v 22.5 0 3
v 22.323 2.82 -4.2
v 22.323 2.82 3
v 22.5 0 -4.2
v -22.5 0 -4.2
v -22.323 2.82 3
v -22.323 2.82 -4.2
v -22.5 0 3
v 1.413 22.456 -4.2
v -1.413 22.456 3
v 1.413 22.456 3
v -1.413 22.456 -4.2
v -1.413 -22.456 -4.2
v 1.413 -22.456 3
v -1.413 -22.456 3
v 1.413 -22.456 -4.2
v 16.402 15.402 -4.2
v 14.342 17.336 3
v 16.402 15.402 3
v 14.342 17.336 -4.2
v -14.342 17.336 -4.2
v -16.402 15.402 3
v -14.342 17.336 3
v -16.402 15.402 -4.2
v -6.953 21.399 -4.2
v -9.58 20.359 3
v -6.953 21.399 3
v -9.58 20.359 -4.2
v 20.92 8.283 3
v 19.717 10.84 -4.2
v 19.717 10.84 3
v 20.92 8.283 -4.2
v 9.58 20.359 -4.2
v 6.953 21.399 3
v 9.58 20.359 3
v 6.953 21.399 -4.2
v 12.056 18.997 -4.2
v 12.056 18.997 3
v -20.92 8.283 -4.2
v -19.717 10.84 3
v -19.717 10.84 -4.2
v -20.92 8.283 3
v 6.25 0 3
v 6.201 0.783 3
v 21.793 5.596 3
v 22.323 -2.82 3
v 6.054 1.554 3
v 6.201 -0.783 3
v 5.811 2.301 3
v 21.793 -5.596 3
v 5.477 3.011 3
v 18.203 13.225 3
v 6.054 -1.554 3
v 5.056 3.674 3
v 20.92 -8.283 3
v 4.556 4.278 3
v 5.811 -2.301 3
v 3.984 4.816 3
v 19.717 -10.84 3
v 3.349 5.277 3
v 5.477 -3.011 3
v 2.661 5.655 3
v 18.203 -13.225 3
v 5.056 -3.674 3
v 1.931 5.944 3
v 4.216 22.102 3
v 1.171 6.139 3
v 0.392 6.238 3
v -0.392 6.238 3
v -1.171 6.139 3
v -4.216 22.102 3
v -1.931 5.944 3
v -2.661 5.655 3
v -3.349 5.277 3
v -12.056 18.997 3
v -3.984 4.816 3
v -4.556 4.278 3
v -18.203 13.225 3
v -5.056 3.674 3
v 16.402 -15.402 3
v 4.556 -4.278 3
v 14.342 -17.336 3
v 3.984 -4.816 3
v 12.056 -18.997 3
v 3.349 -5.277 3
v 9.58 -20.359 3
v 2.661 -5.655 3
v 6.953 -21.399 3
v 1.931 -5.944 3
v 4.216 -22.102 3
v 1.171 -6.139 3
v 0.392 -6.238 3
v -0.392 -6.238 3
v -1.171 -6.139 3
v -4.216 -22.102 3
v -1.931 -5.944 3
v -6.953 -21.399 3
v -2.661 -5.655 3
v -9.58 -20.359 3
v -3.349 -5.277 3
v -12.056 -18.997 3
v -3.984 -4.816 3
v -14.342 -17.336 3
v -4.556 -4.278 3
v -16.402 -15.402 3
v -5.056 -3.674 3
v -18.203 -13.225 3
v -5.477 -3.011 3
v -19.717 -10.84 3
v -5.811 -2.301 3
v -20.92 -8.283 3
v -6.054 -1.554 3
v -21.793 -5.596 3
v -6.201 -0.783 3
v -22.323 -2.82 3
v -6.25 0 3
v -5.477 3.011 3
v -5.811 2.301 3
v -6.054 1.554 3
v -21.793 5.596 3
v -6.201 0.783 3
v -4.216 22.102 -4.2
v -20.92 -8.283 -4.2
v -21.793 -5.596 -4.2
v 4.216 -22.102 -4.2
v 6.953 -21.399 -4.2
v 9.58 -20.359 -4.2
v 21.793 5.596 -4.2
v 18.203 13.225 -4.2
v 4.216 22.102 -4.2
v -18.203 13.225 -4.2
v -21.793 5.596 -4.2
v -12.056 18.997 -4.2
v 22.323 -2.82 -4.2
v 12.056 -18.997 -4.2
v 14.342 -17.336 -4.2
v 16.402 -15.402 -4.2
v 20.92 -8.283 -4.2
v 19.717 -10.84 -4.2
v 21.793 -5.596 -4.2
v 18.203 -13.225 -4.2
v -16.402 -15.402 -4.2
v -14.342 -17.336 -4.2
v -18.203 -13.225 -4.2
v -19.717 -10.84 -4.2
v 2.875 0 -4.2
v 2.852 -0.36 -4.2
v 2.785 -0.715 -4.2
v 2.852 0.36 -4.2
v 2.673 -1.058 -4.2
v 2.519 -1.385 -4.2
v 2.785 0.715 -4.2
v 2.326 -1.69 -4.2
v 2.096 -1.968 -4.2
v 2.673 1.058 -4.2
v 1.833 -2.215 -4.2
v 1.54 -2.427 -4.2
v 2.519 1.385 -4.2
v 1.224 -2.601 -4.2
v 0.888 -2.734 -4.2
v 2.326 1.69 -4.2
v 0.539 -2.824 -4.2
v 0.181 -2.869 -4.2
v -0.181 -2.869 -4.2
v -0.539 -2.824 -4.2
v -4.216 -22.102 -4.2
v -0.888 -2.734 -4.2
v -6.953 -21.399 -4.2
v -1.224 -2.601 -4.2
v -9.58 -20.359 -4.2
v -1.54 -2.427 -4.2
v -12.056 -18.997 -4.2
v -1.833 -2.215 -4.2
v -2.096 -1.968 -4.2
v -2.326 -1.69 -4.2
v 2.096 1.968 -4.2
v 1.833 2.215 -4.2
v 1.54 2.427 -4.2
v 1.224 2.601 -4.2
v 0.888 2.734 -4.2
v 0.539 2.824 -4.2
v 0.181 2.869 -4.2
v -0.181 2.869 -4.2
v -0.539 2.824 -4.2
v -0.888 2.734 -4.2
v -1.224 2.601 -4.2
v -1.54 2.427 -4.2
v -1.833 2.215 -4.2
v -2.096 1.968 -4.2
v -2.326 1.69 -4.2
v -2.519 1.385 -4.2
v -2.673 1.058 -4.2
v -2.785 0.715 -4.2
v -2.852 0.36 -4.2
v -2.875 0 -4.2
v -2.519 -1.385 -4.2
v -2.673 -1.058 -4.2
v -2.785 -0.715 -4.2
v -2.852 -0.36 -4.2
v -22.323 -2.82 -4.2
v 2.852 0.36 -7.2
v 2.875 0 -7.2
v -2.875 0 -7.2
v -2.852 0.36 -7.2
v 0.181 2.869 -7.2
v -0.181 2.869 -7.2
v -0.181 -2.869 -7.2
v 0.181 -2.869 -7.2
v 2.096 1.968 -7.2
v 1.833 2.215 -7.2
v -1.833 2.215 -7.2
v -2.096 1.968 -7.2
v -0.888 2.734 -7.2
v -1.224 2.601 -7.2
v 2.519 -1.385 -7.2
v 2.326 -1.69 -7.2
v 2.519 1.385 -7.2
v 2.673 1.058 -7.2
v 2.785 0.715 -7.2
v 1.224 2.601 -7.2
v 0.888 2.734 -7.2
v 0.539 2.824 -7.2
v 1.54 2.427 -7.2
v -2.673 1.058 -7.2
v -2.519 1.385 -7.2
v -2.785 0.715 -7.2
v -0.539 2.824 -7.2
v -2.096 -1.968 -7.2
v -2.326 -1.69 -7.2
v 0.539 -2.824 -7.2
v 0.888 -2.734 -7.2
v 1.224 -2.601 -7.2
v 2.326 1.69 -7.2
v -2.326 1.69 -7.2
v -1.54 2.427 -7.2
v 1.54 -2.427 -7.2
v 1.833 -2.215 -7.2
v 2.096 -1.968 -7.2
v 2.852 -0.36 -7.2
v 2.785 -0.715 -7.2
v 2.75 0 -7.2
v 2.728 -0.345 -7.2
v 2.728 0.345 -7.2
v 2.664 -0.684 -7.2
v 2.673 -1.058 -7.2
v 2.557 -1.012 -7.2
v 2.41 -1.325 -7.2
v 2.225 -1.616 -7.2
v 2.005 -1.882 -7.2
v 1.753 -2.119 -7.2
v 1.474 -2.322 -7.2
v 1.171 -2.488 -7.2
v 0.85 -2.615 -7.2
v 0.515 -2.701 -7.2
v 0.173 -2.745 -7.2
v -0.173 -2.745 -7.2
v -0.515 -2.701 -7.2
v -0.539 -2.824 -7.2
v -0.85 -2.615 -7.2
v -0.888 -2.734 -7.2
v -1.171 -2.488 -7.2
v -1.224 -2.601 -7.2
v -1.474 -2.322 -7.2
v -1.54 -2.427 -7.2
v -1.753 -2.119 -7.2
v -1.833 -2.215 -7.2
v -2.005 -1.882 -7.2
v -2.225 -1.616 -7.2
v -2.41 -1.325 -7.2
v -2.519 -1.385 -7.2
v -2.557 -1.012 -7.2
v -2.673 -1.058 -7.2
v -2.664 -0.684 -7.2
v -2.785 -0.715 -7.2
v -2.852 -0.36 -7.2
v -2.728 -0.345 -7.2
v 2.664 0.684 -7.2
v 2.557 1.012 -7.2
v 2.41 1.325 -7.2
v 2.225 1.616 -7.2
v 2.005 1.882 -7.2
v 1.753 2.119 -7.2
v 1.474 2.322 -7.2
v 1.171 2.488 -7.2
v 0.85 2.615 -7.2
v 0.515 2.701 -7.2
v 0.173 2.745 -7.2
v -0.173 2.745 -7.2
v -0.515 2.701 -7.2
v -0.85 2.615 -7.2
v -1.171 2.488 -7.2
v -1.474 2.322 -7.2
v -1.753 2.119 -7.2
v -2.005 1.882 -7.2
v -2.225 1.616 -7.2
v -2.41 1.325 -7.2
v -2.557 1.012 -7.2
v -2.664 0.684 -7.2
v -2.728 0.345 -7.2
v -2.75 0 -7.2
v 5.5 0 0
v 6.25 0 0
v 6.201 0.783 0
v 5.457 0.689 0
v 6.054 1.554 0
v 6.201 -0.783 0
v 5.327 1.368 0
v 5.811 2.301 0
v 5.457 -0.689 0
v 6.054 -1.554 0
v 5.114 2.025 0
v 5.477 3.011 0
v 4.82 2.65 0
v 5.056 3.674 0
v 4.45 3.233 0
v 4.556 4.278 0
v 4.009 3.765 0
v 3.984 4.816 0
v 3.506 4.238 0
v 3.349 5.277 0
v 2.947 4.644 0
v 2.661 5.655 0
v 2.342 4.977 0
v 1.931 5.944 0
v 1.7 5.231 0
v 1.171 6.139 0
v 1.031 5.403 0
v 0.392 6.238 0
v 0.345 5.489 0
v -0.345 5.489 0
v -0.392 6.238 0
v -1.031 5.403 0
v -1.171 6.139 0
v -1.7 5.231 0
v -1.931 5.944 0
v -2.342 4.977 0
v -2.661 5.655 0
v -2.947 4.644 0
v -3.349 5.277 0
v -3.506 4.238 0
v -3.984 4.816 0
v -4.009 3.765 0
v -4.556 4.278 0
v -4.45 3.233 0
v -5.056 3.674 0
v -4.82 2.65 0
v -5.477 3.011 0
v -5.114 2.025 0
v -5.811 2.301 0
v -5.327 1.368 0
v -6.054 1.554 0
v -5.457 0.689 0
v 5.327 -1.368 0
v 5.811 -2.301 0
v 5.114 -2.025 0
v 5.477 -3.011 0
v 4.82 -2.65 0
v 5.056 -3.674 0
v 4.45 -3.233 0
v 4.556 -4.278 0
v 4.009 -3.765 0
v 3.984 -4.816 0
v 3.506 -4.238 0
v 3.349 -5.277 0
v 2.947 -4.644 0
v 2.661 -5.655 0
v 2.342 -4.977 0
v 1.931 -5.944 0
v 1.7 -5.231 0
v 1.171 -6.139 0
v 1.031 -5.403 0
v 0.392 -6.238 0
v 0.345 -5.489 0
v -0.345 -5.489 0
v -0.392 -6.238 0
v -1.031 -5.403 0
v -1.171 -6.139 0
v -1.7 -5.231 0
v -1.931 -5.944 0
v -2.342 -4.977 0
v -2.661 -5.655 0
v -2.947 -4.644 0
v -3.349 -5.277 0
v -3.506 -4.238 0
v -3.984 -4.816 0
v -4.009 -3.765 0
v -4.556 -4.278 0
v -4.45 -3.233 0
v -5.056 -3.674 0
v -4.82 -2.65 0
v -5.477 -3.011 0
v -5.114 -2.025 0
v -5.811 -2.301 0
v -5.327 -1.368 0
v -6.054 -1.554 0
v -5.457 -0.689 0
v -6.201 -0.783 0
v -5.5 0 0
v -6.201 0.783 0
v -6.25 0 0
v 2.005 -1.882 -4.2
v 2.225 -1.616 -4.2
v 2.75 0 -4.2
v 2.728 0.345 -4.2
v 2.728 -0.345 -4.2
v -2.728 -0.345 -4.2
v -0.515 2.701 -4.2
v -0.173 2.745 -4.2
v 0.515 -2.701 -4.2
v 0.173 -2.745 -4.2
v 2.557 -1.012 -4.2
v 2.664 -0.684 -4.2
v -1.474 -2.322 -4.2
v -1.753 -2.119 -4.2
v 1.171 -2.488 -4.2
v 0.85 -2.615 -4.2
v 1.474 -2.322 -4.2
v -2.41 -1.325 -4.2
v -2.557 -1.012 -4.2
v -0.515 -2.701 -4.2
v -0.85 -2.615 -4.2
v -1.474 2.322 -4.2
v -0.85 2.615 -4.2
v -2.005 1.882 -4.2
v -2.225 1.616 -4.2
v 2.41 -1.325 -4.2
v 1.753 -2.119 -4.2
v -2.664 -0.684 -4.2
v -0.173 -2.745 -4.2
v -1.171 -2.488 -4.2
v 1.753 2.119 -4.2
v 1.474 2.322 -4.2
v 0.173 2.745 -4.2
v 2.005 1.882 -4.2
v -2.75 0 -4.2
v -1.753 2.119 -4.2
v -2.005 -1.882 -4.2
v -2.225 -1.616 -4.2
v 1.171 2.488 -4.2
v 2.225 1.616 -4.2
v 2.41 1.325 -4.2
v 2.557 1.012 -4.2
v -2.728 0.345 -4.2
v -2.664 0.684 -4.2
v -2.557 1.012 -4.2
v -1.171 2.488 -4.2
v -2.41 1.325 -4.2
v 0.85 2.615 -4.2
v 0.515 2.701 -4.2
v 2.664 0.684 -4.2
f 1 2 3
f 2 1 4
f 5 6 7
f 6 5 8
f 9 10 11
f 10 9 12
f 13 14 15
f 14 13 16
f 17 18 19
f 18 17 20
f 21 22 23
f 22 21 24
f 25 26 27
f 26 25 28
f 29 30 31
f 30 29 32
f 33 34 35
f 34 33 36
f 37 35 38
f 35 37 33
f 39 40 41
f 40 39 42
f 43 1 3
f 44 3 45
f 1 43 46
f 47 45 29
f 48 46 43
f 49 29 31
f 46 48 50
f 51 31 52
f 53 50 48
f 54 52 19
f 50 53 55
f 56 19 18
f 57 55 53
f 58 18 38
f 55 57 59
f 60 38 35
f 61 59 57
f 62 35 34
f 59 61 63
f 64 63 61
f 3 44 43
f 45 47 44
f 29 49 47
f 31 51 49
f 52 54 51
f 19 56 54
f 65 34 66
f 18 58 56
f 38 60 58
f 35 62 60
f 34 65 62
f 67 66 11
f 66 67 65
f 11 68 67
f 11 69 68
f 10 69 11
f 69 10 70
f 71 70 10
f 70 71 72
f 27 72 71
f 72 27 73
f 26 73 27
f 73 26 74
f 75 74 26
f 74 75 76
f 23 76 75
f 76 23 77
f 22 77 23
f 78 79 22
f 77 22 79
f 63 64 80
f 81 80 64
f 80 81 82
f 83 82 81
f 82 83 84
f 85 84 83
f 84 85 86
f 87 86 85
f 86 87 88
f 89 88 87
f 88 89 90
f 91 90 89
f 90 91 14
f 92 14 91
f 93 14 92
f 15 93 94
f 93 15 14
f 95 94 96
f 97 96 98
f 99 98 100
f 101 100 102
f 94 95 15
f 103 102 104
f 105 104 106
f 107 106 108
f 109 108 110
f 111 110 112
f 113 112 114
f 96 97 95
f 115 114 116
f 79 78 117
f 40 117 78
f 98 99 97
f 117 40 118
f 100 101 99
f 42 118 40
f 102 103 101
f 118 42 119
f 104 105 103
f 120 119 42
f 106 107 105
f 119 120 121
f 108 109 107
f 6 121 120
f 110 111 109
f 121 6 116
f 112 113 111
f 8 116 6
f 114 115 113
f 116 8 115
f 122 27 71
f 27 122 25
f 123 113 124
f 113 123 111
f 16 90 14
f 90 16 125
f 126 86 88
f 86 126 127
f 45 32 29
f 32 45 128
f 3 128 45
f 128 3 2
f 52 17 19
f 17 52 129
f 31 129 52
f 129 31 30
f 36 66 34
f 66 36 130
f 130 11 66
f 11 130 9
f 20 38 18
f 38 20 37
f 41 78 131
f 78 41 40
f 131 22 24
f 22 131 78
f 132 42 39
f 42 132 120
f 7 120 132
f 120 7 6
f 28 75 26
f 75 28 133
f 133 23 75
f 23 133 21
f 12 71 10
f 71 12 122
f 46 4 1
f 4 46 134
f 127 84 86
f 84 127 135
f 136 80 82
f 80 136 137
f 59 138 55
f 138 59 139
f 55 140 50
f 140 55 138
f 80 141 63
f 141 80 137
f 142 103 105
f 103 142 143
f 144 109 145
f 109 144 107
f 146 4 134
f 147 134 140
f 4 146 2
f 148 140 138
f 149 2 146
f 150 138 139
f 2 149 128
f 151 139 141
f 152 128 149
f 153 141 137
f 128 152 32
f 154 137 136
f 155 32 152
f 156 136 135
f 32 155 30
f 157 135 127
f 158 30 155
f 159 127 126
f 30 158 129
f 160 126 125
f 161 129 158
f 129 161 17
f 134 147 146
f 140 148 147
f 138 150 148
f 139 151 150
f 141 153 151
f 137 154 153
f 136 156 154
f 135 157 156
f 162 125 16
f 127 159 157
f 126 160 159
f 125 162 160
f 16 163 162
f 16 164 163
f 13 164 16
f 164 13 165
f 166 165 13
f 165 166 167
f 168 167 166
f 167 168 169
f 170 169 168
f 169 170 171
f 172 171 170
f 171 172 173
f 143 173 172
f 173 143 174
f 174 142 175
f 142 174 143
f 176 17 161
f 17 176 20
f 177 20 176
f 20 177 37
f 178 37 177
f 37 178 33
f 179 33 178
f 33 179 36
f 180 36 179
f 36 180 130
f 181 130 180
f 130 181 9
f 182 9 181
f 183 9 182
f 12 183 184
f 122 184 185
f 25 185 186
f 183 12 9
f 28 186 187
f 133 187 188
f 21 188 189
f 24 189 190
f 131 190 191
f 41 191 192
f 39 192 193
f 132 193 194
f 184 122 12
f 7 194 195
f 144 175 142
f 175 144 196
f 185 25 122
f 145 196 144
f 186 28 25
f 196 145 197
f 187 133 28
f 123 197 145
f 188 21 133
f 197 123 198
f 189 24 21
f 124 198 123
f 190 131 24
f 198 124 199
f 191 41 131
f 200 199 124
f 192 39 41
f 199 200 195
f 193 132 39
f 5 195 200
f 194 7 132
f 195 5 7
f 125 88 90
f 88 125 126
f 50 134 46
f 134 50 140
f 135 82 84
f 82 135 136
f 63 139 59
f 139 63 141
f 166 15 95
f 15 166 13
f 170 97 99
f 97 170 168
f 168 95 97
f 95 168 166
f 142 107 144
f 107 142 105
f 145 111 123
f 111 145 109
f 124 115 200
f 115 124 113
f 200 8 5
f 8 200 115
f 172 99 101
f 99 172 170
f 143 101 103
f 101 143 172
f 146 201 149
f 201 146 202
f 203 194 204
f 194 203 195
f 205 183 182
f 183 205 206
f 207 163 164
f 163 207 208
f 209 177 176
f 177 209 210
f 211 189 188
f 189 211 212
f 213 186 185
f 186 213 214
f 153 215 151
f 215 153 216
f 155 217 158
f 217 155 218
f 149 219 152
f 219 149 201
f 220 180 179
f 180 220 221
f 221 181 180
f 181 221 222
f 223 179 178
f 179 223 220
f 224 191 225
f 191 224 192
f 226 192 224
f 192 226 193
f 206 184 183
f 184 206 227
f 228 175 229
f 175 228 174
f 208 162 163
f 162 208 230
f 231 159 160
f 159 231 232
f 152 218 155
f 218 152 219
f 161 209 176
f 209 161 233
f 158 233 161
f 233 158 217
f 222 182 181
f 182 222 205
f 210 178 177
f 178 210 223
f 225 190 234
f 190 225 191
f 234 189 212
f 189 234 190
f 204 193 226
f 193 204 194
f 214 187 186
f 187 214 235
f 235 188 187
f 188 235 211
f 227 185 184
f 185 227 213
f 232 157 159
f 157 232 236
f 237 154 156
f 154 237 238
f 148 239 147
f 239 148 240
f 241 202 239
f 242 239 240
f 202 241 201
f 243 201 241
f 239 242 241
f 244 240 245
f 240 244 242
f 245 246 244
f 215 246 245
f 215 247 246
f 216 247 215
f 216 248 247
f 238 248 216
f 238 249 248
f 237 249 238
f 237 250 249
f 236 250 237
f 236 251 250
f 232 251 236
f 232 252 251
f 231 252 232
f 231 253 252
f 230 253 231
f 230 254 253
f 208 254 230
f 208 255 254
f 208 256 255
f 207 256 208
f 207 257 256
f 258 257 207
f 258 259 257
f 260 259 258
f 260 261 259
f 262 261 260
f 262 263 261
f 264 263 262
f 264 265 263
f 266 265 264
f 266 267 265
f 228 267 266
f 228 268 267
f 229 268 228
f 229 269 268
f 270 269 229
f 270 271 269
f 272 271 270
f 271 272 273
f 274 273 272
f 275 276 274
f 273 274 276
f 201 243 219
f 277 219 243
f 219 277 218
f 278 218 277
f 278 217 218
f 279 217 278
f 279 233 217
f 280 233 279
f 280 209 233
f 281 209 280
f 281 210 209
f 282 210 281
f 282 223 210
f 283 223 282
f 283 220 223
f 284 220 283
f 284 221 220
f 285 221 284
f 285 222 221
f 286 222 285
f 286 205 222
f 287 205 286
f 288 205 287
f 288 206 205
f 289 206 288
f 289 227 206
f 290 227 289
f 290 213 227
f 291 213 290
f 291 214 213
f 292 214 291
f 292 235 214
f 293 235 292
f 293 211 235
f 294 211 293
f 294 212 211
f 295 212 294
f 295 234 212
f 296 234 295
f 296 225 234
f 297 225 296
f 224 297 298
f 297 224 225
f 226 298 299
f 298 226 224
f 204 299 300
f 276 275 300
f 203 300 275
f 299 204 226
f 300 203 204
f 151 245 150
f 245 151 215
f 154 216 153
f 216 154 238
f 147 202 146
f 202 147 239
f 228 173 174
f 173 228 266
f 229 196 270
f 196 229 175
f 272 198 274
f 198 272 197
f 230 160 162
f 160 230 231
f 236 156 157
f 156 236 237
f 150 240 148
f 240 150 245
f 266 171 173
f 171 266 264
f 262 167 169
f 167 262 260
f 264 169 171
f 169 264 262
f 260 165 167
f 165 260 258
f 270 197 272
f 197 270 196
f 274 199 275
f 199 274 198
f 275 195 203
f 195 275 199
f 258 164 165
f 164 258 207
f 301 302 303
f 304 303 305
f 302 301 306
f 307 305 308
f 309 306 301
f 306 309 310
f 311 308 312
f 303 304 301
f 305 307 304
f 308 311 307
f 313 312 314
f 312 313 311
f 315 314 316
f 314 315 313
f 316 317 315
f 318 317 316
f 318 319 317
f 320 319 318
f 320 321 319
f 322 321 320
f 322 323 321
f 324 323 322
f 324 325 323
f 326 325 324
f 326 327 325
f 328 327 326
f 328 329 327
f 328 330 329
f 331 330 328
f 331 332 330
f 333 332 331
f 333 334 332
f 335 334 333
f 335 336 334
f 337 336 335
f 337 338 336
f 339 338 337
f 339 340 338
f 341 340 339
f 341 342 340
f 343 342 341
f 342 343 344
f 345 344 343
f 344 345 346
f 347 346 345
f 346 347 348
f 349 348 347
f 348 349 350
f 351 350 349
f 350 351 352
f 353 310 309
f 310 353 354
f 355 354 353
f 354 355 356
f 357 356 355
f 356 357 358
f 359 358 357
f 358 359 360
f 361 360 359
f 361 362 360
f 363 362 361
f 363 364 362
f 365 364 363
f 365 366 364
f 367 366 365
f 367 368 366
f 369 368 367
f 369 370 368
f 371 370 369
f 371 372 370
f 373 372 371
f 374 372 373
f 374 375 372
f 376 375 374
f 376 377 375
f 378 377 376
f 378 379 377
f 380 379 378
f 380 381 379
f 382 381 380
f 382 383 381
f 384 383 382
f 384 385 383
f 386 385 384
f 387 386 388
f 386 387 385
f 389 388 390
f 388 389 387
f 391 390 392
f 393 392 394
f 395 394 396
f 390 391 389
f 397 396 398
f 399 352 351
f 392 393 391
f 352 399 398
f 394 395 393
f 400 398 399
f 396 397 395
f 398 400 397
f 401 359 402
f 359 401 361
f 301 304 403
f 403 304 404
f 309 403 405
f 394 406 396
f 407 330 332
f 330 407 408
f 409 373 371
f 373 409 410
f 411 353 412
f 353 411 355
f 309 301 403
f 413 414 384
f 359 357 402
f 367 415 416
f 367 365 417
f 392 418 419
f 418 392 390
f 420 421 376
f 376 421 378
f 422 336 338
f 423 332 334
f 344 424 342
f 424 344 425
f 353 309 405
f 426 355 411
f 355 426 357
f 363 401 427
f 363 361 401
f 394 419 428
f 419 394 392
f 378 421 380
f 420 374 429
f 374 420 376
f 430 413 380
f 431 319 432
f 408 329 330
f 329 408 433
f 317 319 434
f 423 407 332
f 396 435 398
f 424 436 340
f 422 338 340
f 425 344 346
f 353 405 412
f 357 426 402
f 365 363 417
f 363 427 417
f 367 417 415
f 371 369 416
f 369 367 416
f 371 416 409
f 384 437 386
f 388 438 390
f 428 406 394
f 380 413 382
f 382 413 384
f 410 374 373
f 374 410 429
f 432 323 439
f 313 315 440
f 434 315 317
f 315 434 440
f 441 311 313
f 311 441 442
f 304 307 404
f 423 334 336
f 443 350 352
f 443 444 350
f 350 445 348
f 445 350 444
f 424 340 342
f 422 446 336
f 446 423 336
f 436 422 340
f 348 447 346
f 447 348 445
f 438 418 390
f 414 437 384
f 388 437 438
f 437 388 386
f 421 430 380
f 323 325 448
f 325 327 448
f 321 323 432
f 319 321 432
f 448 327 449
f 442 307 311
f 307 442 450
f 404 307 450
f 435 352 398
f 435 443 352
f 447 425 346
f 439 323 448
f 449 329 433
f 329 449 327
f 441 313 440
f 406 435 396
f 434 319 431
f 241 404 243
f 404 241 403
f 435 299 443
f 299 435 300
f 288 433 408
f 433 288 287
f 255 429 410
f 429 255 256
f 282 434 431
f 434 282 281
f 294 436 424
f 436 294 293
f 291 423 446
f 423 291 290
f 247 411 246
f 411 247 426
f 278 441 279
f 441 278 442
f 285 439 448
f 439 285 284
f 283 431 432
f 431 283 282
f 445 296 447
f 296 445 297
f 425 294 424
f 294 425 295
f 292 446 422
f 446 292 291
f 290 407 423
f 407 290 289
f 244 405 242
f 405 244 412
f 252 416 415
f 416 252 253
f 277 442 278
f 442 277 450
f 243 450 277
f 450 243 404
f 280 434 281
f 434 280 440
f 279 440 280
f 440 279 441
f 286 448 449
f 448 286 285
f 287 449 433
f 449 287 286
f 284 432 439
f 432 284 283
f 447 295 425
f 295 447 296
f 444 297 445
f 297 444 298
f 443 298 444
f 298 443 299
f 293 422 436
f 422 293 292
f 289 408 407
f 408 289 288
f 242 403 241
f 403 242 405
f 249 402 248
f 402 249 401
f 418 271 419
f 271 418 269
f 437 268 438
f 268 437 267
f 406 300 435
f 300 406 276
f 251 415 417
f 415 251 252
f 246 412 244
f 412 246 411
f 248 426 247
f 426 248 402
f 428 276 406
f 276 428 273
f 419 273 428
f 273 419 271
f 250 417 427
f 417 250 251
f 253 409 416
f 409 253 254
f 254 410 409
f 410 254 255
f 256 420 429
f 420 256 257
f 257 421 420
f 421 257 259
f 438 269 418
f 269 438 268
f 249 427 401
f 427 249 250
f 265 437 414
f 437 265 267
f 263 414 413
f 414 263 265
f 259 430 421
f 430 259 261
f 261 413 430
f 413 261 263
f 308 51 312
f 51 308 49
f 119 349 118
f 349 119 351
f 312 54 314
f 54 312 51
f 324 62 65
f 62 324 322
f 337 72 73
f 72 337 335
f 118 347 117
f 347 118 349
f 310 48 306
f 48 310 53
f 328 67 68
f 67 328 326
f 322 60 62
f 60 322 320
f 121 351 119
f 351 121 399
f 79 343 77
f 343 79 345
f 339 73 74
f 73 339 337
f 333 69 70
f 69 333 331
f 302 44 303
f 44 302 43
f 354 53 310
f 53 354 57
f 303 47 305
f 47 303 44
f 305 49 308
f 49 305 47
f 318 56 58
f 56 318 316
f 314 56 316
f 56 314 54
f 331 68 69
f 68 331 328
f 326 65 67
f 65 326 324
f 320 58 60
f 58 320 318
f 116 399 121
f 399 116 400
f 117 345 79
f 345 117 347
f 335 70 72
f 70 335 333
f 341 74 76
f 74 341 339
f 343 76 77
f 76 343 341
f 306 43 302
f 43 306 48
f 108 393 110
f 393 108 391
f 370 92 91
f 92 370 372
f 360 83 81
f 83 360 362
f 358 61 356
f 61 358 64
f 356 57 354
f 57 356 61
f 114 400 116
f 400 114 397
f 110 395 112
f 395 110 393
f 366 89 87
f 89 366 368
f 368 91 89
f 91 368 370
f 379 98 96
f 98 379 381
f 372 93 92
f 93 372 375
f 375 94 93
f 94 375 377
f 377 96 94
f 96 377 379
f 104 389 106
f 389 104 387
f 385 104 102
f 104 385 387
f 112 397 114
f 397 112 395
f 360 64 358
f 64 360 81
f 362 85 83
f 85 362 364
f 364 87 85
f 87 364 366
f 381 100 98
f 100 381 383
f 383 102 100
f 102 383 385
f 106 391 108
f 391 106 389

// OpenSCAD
$fn = 50;


difference() {
	union() {
		translate(v = [0, 0, -4.2000000000]) {
			cylinder(h = 7.2000000000, r = 22.5000000000);
		}
		#translate(v = [0, 0, -7.2000000000]) {
			cylinder(h = 7.2000000000, r = 2.8750000000);
		}
	}
	union() {
		translate(v = [0, 0, 0]) {
			rotate(a = [0, 0, 0]) {
				difference() {
					union() {
						translate(v = [0, 0, -7.2000000000]) {
							cylinder(h = 7.2000000000, r = 2.2500000000);
						}
						translate(v = [0, 0, -4.2000000000]) {
							cylinder(h = 4.2000000000, r1 = 2.7500000000, r2 = 5.5000000000);
						}
						translate(v = [0, 0, -7.2000000000]) {
							cylinder(h = 7.2000000000, r = 2.7500000000);
						}
						translate(v = [0, 0, -7.2000000000]) {
							cylinder(h = 7.2000000000, r = 2.2500000000);
						}
					}
					union();
				}
			}
		}
		#cylinder(h = 3, r = 6.2500000000);
	}
}
